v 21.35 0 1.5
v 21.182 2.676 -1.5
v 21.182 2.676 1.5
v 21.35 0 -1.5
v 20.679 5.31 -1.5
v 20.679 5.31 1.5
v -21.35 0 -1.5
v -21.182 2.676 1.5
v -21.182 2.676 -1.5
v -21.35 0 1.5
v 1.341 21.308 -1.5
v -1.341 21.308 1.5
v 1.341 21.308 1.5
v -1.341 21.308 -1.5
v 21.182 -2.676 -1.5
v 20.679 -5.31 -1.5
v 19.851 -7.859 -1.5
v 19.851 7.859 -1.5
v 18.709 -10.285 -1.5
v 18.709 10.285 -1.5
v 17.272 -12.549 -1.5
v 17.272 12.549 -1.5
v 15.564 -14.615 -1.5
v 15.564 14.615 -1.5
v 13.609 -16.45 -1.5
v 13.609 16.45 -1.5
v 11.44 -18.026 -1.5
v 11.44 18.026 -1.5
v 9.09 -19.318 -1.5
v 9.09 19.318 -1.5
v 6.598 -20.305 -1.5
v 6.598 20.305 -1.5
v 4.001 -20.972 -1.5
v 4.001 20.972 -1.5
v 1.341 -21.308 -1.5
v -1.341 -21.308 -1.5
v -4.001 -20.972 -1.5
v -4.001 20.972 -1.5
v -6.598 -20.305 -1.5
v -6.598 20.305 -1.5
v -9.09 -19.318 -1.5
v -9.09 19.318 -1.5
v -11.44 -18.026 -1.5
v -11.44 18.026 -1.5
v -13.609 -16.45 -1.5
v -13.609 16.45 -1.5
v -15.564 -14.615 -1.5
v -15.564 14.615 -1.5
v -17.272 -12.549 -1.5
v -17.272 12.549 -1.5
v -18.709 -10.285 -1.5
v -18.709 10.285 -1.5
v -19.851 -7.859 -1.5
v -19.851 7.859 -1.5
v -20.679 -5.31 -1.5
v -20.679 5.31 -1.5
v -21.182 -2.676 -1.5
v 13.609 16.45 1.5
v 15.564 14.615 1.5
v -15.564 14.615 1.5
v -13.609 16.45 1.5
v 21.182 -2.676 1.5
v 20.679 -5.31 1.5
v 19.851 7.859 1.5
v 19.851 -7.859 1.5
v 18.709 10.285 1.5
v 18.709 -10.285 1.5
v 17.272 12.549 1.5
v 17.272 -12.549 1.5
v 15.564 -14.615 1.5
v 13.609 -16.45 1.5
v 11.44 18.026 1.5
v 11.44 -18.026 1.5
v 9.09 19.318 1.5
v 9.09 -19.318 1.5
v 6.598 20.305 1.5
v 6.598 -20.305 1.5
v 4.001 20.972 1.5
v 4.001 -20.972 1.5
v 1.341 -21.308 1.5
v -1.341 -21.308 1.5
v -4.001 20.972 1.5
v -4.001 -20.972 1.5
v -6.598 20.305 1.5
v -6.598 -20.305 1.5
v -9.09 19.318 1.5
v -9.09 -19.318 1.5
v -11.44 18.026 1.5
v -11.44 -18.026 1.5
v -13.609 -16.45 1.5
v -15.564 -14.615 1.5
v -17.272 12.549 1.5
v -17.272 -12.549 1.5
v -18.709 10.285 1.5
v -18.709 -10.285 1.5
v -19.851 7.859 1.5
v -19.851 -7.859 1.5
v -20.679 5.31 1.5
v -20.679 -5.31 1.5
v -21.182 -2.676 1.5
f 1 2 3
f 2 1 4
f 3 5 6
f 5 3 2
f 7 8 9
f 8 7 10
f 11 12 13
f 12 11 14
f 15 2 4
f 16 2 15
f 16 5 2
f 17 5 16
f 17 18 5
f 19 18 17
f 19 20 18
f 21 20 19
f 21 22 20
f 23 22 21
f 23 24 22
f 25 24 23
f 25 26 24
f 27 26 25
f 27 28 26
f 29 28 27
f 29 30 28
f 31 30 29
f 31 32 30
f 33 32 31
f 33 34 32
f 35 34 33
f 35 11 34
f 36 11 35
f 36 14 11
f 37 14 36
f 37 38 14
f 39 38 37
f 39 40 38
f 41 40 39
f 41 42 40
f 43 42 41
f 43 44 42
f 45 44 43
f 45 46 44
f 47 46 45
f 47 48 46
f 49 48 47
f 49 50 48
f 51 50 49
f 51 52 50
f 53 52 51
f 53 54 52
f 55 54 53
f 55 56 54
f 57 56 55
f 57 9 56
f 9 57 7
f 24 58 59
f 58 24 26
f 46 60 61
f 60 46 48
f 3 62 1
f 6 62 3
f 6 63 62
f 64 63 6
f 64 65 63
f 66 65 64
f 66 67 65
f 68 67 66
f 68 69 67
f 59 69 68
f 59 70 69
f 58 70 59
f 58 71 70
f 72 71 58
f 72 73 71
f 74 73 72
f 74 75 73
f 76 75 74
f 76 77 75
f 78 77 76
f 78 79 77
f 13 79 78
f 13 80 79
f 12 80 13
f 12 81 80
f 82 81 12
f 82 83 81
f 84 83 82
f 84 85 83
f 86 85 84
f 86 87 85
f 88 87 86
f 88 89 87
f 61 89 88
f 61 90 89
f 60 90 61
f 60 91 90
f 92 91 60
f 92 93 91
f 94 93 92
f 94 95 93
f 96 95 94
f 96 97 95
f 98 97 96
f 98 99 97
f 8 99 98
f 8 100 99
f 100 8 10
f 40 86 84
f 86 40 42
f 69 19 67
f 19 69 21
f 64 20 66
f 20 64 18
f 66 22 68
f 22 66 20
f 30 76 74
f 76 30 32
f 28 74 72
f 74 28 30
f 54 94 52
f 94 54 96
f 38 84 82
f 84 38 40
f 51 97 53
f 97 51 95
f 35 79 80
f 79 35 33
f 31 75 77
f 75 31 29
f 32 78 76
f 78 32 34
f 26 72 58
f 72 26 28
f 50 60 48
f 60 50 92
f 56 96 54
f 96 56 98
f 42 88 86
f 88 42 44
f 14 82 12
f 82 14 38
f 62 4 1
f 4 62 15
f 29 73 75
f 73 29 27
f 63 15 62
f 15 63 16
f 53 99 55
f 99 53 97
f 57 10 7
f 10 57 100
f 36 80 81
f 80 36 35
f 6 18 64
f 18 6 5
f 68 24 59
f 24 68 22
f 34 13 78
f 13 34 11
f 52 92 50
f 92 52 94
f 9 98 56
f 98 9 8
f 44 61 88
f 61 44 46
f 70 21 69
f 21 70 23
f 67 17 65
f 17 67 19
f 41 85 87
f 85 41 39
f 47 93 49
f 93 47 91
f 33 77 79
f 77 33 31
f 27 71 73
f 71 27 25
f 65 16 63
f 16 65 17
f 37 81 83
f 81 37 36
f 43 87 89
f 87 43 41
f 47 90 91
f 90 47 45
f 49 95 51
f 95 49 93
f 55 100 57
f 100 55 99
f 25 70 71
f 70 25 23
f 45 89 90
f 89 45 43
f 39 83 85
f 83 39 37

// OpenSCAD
$fn = 50;


difference() {
	union() {
		translate(v = [0, 0, -1.5000000000]) {
			cylinder(h = 3, r = 21.3500000000);
		}
	}
	union() {
		translate(v = [0, 0, -100.0000000000]) {
			cylinder(h = 200, r = 0);
		}
	}
}
